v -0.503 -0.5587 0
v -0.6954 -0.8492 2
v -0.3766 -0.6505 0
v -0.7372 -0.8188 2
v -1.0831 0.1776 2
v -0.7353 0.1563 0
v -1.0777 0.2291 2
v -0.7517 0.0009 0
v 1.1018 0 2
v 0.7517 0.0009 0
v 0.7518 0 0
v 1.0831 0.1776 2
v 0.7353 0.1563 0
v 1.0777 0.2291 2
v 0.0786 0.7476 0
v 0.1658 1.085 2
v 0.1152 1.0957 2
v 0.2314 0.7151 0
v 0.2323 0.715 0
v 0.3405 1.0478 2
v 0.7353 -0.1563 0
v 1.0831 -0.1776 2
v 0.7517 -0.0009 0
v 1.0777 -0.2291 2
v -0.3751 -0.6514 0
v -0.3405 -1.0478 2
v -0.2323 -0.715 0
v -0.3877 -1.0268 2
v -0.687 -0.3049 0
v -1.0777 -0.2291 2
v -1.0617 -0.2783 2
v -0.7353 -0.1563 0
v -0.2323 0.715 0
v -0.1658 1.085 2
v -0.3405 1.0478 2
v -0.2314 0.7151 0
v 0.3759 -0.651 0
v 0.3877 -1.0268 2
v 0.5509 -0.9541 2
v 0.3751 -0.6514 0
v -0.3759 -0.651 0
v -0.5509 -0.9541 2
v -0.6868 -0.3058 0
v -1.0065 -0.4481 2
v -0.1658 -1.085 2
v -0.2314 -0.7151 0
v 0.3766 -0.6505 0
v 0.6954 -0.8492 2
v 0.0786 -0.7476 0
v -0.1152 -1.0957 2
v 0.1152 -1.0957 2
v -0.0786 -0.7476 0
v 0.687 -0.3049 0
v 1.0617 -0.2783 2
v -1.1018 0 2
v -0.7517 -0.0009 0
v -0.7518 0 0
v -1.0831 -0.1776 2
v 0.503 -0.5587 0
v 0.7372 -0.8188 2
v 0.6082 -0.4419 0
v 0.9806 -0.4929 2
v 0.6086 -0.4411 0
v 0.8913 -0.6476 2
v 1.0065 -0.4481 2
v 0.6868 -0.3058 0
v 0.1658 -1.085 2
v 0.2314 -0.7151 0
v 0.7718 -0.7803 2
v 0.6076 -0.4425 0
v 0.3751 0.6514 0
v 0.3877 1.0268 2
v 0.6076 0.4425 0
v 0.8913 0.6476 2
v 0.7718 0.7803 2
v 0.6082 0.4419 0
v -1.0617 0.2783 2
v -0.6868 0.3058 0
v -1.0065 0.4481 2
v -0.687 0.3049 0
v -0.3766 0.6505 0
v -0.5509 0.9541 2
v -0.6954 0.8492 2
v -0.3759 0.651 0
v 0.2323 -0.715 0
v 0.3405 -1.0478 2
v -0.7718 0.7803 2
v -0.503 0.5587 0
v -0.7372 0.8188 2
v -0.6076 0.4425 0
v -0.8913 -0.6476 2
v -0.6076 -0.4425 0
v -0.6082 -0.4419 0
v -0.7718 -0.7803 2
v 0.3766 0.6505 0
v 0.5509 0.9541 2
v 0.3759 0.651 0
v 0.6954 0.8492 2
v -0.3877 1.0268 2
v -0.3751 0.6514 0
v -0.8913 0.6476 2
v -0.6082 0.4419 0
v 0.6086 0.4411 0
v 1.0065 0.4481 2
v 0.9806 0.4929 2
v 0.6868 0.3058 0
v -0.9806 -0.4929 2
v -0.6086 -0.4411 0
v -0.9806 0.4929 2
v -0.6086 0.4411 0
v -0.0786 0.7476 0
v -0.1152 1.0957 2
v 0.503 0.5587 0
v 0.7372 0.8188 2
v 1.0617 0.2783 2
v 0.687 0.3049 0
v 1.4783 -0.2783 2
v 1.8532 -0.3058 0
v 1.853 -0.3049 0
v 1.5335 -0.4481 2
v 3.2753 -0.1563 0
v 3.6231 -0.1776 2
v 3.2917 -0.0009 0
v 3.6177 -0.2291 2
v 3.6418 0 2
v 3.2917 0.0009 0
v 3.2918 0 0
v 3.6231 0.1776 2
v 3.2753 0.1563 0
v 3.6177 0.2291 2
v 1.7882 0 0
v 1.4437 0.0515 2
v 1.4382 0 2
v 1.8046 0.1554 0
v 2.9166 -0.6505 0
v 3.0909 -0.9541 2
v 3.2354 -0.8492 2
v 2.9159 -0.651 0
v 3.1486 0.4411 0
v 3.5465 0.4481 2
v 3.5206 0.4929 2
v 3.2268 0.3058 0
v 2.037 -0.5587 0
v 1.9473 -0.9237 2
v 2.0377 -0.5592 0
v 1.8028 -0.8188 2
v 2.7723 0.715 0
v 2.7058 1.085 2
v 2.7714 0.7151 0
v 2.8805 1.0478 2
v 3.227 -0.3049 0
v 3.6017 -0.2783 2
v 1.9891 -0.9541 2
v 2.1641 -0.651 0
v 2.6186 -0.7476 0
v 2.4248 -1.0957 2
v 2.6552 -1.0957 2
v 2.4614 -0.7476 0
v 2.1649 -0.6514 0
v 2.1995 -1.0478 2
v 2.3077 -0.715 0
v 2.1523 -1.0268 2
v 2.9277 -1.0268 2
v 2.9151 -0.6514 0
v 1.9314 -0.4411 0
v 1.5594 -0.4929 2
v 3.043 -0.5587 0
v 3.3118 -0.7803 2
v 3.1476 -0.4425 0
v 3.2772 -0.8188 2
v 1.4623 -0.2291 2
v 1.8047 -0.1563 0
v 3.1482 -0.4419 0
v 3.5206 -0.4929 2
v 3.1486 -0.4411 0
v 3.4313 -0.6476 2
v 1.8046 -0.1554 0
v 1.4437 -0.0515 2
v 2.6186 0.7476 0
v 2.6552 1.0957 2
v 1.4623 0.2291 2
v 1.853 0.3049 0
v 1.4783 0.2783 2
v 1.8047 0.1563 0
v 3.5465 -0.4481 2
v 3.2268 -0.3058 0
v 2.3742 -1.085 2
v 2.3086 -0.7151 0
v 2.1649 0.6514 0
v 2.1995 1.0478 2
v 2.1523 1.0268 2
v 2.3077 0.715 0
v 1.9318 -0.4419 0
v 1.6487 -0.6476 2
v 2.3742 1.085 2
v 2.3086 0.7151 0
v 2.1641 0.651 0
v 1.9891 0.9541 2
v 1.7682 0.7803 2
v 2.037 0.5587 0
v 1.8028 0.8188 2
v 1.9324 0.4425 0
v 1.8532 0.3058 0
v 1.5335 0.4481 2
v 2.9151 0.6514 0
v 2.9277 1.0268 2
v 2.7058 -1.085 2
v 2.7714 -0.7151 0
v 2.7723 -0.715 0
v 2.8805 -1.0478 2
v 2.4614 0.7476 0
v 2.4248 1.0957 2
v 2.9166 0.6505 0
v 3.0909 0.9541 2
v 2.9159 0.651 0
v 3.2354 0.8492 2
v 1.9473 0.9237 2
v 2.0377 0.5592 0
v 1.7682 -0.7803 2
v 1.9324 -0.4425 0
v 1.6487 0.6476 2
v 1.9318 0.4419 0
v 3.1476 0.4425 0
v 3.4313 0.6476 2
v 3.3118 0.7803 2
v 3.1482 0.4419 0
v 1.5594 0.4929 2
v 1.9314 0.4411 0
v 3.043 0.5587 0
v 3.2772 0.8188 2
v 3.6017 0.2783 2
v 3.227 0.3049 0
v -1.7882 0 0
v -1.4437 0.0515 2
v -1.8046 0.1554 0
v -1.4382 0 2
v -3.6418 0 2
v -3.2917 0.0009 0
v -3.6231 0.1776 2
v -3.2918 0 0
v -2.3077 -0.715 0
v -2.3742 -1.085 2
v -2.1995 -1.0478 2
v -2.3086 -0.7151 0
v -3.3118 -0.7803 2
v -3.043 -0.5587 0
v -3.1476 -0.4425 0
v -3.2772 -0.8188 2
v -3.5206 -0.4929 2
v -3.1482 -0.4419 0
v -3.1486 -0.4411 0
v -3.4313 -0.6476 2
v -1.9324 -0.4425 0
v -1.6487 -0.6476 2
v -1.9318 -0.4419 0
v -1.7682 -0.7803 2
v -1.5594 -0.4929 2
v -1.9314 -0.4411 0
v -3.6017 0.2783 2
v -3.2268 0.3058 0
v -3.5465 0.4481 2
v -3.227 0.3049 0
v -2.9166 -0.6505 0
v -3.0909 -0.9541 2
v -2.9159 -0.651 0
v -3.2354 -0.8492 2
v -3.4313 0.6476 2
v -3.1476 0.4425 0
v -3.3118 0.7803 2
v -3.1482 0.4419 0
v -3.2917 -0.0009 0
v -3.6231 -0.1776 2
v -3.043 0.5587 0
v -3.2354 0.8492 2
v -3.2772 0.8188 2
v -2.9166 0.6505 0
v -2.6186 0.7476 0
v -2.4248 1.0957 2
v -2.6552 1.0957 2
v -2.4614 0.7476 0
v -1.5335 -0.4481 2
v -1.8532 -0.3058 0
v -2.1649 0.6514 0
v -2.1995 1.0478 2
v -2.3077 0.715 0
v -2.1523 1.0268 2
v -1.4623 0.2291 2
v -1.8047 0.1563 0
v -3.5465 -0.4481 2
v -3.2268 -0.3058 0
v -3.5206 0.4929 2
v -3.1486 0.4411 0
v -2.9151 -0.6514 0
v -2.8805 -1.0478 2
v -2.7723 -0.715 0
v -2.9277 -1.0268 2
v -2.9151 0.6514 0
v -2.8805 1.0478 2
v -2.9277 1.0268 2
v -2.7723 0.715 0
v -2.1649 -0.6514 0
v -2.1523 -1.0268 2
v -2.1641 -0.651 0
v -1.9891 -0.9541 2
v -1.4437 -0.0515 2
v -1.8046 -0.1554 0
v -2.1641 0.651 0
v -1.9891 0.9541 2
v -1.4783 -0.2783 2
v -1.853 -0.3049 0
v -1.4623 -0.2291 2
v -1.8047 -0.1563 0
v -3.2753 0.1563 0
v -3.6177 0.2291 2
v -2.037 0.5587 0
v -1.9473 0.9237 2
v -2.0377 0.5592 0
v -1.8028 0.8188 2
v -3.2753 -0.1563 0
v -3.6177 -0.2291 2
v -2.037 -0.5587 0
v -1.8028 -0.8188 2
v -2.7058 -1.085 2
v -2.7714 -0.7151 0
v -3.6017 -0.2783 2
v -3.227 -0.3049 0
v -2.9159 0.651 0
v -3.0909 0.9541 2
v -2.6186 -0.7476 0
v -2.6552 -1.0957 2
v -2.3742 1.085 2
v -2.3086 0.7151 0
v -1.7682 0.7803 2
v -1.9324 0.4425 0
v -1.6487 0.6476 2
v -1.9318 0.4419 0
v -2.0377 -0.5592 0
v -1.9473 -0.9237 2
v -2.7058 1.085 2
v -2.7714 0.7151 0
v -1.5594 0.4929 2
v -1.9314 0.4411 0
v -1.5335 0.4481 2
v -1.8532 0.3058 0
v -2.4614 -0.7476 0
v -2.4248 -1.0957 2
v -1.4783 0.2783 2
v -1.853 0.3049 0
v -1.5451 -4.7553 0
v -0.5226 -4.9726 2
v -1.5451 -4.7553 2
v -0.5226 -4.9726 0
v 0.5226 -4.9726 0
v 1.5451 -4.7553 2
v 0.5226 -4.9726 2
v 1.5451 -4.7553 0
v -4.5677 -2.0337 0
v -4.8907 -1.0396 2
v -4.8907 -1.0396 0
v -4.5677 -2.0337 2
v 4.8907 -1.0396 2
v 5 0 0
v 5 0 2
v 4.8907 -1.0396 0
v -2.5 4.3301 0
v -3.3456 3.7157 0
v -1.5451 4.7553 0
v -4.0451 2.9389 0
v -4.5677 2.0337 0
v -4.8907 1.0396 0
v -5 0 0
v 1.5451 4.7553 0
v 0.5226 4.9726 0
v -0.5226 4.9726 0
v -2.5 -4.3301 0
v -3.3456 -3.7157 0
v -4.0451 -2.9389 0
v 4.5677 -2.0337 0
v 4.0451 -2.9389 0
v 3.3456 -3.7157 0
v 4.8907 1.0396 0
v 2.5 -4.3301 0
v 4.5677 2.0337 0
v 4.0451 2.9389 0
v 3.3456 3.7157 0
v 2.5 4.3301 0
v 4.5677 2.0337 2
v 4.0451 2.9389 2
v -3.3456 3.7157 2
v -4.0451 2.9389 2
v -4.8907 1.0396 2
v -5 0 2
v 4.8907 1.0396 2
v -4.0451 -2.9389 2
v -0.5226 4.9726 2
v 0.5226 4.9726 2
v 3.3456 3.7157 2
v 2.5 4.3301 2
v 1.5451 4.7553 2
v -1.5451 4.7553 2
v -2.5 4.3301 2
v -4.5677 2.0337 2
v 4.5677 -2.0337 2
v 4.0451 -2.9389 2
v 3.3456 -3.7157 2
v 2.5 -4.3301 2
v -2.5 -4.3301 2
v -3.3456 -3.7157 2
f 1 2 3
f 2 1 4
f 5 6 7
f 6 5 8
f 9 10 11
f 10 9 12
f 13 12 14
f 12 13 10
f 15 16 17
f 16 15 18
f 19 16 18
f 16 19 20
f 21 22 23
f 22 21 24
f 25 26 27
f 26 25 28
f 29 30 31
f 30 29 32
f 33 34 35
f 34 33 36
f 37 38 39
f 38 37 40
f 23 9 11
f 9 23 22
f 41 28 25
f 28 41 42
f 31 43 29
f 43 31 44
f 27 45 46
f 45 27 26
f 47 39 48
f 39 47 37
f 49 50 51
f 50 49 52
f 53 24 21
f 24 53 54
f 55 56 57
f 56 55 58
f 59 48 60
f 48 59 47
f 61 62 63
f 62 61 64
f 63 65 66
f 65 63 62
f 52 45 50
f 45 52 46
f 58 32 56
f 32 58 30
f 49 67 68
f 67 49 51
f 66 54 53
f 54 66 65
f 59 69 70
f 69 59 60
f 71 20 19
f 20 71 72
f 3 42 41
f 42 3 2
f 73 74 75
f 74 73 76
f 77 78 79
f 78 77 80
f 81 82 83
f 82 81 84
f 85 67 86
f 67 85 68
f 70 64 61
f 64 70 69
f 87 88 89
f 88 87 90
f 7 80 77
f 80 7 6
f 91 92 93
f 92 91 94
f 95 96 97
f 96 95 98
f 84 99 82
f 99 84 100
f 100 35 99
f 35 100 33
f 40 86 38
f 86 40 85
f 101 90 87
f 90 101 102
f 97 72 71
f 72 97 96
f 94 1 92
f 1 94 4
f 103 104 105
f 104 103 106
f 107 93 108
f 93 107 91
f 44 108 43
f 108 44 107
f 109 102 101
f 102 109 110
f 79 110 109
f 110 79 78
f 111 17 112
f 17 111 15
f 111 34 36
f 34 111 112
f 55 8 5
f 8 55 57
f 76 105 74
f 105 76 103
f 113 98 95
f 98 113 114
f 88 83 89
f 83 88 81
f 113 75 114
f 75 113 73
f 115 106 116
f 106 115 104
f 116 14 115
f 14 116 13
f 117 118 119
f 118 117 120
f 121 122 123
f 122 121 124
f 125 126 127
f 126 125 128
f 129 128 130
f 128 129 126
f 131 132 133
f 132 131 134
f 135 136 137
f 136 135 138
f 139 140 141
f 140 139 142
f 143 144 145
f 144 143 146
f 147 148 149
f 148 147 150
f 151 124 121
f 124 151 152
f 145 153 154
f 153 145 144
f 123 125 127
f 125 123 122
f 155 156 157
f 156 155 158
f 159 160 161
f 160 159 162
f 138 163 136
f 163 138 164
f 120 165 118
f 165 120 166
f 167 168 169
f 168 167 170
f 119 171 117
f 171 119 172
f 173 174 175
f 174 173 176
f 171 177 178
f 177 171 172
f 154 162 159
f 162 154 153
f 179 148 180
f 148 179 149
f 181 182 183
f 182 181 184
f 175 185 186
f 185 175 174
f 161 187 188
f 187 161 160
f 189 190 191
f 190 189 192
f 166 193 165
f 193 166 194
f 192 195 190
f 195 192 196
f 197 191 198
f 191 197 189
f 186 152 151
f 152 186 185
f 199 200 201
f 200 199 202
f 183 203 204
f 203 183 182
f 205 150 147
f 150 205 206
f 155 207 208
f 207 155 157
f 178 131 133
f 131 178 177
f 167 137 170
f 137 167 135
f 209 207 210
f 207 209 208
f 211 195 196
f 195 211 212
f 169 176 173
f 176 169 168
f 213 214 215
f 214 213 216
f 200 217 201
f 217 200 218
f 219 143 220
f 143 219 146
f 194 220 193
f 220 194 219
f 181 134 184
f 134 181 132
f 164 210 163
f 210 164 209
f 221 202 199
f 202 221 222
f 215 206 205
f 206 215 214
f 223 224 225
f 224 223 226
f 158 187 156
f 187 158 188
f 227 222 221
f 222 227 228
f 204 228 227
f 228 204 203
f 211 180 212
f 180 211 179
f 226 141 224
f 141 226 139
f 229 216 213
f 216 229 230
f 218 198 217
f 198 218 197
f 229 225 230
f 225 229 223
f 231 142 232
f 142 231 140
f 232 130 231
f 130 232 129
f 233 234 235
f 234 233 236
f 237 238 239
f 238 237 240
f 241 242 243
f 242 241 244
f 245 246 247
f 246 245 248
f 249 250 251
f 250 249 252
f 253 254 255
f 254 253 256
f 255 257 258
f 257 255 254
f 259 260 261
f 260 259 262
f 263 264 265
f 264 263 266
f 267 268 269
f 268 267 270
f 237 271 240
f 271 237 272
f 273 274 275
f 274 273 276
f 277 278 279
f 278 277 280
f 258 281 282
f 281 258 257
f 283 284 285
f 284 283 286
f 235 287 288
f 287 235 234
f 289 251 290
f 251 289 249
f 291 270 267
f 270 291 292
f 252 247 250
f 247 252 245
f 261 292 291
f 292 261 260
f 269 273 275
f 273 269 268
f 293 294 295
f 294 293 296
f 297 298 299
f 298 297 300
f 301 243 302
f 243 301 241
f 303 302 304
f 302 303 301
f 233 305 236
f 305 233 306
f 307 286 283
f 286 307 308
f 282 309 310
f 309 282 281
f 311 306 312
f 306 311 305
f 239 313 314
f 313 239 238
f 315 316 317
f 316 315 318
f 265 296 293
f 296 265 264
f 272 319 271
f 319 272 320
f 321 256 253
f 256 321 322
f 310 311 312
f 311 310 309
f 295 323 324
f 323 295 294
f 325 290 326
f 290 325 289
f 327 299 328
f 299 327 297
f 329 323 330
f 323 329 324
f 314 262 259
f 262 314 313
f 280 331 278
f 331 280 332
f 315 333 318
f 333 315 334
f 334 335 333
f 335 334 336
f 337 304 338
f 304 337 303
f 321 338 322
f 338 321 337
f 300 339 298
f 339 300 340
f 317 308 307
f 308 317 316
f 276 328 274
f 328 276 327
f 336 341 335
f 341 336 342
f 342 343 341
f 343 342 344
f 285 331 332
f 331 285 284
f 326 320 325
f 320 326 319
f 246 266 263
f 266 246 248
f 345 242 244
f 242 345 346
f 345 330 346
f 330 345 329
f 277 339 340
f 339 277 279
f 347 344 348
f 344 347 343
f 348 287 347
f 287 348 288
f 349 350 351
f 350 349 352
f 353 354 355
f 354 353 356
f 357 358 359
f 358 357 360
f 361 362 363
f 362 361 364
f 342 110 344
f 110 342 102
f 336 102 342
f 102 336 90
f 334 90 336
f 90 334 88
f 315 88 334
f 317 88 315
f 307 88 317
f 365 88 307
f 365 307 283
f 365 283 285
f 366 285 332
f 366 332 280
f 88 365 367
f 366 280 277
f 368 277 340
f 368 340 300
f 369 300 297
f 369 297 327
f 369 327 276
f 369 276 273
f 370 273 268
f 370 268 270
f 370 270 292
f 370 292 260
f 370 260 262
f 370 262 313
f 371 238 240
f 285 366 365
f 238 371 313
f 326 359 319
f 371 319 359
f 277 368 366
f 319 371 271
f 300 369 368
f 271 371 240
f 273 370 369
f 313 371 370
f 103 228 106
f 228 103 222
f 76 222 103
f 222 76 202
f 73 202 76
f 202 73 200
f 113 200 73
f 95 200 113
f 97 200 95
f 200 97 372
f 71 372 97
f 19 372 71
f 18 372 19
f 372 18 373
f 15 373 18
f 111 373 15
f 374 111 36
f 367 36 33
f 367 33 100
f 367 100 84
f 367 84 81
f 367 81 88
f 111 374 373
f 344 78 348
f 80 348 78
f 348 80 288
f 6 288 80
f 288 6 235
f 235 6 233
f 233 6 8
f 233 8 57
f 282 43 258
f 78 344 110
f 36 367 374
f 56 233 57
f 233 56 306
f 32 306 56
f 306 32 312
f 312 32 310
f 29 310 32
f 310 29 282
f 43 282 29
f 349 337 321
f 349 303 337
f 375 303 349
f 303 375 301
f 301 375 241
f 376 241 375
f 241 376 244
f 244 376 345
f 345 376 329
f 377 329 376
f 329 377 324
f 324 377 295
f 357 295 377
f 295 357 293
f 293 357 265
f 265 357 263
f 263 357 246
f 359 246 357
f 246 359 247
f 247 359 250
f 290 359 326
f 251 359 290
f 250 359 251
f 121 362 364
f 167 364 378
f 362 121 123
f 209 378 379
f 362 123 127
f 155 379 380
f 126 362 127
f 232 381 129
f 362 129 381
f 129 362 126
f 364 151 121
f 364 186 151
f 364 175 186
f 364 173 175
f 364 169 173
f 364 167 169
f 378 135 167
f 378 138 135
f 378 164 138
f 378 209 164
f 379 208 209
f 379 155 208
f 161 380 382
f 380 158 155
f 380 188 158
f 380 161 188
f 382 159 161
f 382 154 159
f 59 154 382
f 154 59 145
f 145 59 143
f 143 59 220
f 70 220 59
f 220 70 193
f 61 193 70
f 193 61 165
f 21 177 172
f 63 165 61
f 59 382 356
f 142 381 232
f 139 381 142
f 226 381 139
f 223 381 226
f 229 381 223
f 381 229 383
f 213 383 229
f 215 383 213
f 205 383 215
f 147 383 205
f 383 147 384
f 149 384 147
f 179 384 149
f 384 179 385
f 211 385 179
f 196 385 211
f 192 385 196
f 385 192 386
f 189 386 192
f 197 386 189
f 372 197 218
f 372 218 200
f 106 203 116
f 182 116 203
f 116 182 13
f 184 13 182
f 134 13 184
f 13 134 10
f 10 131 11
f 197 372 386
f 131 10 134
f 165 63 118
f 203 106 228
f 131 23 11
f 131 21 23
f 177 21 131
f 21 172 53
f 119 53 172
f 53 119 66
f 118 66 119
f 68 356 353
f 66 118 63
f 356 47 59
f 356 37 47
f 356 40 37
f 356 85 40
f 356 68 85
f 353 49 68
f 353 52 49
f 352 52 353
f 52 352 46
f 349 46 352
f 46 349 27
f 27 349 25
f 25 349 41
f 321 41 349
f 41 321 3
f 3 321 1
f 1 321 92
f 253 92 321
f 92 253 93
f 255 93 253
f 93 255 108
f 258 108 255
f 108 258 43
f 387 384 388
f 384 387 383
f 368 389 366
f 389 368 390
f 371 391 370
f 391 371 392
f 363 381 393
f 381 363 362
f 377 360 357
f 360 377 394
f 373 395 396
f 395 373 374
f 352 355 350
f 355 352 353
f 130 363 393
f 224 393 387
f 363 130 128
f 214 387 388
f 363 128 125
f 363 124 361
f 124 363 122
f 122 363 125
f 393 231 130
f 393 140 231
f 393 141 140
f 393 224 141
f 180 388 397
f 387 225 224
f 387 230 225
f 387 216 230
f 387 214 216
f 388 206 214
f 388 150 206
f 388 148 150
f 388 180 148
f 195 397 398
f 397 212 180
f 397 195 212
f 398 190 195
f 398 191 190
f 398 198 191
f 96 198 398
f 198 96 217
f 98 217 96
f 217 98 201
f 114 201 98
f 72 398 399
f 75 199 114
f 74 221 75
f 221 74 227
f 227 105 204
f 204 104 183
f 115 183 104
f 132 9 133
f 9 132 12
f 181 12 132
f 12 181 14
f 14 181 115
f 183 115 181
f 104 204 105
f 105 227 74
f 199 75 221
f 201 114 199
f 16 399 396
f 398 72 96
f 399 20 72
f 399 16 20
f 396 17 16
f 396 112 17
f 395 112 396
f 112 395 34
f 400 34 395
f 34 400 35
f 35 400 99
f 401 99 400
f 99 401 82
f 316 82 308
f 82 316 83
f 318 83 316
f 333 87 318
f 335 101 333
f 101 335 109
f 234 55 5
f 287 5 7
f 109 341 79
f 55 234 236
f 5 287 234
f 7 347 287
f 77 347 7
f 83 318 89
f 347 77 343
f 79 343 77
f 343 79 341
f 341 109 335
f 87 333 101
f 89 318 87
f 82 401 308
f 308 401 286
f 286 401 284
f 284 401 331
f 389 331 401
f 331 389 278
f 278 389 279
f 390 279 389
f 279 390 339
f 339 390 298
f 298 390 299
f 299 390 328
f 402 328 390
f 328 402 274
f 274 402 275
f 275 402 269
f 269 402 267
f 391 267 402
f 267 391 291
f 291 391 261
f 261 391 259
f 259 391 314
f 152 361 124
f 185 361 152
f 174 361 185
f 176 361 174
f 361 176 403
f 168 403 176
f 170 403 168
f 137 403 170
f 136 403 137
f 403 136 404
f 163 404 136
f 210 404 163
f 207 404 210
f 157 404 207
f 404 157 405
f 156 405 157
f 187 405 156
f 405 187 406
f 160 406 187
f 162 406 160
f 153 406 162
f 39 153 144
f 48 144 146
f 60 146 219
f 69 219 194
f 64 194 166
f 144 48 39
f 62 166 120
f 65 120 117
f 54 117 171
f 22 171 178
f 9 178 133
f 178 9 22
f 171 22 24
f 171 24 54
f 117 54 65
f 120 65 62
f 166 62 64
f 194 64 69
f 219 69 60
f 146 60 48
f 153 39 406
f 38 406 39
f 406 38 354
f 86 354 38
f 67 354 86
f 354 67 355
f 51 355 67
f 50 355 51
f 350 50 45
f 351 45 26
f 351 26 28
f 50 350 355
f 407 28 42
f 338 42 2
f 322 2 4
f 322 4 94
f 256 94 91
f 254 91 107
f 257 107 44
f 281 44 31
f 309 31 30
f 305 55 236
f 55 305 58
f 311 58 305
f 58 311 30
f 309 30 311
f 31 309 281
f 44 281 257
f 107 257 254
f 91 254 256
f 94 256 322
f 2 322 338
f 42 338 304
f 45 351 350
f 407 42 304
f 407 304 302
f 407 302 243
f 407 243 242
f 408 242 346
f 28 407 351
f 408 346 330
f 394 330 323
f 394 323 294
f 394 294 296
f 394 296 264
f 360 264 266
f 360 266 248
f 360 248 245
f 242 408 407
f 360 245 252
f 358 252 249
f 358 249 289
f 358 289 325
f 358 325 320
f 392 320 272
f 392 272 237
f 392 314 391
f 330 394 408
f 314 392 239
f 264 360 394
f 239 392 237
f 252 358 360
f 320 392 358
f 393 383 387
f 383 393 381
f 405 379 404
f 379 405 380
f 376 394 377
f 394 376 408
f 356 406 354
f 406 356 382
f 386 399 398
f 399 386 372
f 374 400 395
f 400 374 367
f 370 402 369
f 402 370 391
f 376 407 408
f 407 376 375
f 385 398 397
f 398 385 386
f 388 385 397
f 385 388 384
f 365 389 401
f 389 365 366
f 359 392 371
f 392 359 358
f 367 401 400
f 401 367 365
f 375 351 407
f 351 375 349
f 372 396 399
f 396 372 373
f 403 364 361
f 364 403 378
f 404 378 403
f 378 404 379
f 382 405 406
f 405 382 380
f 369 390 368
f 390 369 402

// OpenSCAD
h=2;

dc = 1.5;
ds=1.5;
atk = 1.7;
difference(){
cylinder(d=10,h=h,$fn=30);
translate([0,0,-.01]){
    cylinder(d1=dc,d2=dc*atk,h+1,$fn=30);
    translate([2.54,0,0])
    cylinder(d1=ds,d2=ds*atk,h+1,$fn=30);
    translate([-2.54,0,0])
    cylinder(d1=ds,d2=ds*atk,h+1,$fn=30);
}
}
